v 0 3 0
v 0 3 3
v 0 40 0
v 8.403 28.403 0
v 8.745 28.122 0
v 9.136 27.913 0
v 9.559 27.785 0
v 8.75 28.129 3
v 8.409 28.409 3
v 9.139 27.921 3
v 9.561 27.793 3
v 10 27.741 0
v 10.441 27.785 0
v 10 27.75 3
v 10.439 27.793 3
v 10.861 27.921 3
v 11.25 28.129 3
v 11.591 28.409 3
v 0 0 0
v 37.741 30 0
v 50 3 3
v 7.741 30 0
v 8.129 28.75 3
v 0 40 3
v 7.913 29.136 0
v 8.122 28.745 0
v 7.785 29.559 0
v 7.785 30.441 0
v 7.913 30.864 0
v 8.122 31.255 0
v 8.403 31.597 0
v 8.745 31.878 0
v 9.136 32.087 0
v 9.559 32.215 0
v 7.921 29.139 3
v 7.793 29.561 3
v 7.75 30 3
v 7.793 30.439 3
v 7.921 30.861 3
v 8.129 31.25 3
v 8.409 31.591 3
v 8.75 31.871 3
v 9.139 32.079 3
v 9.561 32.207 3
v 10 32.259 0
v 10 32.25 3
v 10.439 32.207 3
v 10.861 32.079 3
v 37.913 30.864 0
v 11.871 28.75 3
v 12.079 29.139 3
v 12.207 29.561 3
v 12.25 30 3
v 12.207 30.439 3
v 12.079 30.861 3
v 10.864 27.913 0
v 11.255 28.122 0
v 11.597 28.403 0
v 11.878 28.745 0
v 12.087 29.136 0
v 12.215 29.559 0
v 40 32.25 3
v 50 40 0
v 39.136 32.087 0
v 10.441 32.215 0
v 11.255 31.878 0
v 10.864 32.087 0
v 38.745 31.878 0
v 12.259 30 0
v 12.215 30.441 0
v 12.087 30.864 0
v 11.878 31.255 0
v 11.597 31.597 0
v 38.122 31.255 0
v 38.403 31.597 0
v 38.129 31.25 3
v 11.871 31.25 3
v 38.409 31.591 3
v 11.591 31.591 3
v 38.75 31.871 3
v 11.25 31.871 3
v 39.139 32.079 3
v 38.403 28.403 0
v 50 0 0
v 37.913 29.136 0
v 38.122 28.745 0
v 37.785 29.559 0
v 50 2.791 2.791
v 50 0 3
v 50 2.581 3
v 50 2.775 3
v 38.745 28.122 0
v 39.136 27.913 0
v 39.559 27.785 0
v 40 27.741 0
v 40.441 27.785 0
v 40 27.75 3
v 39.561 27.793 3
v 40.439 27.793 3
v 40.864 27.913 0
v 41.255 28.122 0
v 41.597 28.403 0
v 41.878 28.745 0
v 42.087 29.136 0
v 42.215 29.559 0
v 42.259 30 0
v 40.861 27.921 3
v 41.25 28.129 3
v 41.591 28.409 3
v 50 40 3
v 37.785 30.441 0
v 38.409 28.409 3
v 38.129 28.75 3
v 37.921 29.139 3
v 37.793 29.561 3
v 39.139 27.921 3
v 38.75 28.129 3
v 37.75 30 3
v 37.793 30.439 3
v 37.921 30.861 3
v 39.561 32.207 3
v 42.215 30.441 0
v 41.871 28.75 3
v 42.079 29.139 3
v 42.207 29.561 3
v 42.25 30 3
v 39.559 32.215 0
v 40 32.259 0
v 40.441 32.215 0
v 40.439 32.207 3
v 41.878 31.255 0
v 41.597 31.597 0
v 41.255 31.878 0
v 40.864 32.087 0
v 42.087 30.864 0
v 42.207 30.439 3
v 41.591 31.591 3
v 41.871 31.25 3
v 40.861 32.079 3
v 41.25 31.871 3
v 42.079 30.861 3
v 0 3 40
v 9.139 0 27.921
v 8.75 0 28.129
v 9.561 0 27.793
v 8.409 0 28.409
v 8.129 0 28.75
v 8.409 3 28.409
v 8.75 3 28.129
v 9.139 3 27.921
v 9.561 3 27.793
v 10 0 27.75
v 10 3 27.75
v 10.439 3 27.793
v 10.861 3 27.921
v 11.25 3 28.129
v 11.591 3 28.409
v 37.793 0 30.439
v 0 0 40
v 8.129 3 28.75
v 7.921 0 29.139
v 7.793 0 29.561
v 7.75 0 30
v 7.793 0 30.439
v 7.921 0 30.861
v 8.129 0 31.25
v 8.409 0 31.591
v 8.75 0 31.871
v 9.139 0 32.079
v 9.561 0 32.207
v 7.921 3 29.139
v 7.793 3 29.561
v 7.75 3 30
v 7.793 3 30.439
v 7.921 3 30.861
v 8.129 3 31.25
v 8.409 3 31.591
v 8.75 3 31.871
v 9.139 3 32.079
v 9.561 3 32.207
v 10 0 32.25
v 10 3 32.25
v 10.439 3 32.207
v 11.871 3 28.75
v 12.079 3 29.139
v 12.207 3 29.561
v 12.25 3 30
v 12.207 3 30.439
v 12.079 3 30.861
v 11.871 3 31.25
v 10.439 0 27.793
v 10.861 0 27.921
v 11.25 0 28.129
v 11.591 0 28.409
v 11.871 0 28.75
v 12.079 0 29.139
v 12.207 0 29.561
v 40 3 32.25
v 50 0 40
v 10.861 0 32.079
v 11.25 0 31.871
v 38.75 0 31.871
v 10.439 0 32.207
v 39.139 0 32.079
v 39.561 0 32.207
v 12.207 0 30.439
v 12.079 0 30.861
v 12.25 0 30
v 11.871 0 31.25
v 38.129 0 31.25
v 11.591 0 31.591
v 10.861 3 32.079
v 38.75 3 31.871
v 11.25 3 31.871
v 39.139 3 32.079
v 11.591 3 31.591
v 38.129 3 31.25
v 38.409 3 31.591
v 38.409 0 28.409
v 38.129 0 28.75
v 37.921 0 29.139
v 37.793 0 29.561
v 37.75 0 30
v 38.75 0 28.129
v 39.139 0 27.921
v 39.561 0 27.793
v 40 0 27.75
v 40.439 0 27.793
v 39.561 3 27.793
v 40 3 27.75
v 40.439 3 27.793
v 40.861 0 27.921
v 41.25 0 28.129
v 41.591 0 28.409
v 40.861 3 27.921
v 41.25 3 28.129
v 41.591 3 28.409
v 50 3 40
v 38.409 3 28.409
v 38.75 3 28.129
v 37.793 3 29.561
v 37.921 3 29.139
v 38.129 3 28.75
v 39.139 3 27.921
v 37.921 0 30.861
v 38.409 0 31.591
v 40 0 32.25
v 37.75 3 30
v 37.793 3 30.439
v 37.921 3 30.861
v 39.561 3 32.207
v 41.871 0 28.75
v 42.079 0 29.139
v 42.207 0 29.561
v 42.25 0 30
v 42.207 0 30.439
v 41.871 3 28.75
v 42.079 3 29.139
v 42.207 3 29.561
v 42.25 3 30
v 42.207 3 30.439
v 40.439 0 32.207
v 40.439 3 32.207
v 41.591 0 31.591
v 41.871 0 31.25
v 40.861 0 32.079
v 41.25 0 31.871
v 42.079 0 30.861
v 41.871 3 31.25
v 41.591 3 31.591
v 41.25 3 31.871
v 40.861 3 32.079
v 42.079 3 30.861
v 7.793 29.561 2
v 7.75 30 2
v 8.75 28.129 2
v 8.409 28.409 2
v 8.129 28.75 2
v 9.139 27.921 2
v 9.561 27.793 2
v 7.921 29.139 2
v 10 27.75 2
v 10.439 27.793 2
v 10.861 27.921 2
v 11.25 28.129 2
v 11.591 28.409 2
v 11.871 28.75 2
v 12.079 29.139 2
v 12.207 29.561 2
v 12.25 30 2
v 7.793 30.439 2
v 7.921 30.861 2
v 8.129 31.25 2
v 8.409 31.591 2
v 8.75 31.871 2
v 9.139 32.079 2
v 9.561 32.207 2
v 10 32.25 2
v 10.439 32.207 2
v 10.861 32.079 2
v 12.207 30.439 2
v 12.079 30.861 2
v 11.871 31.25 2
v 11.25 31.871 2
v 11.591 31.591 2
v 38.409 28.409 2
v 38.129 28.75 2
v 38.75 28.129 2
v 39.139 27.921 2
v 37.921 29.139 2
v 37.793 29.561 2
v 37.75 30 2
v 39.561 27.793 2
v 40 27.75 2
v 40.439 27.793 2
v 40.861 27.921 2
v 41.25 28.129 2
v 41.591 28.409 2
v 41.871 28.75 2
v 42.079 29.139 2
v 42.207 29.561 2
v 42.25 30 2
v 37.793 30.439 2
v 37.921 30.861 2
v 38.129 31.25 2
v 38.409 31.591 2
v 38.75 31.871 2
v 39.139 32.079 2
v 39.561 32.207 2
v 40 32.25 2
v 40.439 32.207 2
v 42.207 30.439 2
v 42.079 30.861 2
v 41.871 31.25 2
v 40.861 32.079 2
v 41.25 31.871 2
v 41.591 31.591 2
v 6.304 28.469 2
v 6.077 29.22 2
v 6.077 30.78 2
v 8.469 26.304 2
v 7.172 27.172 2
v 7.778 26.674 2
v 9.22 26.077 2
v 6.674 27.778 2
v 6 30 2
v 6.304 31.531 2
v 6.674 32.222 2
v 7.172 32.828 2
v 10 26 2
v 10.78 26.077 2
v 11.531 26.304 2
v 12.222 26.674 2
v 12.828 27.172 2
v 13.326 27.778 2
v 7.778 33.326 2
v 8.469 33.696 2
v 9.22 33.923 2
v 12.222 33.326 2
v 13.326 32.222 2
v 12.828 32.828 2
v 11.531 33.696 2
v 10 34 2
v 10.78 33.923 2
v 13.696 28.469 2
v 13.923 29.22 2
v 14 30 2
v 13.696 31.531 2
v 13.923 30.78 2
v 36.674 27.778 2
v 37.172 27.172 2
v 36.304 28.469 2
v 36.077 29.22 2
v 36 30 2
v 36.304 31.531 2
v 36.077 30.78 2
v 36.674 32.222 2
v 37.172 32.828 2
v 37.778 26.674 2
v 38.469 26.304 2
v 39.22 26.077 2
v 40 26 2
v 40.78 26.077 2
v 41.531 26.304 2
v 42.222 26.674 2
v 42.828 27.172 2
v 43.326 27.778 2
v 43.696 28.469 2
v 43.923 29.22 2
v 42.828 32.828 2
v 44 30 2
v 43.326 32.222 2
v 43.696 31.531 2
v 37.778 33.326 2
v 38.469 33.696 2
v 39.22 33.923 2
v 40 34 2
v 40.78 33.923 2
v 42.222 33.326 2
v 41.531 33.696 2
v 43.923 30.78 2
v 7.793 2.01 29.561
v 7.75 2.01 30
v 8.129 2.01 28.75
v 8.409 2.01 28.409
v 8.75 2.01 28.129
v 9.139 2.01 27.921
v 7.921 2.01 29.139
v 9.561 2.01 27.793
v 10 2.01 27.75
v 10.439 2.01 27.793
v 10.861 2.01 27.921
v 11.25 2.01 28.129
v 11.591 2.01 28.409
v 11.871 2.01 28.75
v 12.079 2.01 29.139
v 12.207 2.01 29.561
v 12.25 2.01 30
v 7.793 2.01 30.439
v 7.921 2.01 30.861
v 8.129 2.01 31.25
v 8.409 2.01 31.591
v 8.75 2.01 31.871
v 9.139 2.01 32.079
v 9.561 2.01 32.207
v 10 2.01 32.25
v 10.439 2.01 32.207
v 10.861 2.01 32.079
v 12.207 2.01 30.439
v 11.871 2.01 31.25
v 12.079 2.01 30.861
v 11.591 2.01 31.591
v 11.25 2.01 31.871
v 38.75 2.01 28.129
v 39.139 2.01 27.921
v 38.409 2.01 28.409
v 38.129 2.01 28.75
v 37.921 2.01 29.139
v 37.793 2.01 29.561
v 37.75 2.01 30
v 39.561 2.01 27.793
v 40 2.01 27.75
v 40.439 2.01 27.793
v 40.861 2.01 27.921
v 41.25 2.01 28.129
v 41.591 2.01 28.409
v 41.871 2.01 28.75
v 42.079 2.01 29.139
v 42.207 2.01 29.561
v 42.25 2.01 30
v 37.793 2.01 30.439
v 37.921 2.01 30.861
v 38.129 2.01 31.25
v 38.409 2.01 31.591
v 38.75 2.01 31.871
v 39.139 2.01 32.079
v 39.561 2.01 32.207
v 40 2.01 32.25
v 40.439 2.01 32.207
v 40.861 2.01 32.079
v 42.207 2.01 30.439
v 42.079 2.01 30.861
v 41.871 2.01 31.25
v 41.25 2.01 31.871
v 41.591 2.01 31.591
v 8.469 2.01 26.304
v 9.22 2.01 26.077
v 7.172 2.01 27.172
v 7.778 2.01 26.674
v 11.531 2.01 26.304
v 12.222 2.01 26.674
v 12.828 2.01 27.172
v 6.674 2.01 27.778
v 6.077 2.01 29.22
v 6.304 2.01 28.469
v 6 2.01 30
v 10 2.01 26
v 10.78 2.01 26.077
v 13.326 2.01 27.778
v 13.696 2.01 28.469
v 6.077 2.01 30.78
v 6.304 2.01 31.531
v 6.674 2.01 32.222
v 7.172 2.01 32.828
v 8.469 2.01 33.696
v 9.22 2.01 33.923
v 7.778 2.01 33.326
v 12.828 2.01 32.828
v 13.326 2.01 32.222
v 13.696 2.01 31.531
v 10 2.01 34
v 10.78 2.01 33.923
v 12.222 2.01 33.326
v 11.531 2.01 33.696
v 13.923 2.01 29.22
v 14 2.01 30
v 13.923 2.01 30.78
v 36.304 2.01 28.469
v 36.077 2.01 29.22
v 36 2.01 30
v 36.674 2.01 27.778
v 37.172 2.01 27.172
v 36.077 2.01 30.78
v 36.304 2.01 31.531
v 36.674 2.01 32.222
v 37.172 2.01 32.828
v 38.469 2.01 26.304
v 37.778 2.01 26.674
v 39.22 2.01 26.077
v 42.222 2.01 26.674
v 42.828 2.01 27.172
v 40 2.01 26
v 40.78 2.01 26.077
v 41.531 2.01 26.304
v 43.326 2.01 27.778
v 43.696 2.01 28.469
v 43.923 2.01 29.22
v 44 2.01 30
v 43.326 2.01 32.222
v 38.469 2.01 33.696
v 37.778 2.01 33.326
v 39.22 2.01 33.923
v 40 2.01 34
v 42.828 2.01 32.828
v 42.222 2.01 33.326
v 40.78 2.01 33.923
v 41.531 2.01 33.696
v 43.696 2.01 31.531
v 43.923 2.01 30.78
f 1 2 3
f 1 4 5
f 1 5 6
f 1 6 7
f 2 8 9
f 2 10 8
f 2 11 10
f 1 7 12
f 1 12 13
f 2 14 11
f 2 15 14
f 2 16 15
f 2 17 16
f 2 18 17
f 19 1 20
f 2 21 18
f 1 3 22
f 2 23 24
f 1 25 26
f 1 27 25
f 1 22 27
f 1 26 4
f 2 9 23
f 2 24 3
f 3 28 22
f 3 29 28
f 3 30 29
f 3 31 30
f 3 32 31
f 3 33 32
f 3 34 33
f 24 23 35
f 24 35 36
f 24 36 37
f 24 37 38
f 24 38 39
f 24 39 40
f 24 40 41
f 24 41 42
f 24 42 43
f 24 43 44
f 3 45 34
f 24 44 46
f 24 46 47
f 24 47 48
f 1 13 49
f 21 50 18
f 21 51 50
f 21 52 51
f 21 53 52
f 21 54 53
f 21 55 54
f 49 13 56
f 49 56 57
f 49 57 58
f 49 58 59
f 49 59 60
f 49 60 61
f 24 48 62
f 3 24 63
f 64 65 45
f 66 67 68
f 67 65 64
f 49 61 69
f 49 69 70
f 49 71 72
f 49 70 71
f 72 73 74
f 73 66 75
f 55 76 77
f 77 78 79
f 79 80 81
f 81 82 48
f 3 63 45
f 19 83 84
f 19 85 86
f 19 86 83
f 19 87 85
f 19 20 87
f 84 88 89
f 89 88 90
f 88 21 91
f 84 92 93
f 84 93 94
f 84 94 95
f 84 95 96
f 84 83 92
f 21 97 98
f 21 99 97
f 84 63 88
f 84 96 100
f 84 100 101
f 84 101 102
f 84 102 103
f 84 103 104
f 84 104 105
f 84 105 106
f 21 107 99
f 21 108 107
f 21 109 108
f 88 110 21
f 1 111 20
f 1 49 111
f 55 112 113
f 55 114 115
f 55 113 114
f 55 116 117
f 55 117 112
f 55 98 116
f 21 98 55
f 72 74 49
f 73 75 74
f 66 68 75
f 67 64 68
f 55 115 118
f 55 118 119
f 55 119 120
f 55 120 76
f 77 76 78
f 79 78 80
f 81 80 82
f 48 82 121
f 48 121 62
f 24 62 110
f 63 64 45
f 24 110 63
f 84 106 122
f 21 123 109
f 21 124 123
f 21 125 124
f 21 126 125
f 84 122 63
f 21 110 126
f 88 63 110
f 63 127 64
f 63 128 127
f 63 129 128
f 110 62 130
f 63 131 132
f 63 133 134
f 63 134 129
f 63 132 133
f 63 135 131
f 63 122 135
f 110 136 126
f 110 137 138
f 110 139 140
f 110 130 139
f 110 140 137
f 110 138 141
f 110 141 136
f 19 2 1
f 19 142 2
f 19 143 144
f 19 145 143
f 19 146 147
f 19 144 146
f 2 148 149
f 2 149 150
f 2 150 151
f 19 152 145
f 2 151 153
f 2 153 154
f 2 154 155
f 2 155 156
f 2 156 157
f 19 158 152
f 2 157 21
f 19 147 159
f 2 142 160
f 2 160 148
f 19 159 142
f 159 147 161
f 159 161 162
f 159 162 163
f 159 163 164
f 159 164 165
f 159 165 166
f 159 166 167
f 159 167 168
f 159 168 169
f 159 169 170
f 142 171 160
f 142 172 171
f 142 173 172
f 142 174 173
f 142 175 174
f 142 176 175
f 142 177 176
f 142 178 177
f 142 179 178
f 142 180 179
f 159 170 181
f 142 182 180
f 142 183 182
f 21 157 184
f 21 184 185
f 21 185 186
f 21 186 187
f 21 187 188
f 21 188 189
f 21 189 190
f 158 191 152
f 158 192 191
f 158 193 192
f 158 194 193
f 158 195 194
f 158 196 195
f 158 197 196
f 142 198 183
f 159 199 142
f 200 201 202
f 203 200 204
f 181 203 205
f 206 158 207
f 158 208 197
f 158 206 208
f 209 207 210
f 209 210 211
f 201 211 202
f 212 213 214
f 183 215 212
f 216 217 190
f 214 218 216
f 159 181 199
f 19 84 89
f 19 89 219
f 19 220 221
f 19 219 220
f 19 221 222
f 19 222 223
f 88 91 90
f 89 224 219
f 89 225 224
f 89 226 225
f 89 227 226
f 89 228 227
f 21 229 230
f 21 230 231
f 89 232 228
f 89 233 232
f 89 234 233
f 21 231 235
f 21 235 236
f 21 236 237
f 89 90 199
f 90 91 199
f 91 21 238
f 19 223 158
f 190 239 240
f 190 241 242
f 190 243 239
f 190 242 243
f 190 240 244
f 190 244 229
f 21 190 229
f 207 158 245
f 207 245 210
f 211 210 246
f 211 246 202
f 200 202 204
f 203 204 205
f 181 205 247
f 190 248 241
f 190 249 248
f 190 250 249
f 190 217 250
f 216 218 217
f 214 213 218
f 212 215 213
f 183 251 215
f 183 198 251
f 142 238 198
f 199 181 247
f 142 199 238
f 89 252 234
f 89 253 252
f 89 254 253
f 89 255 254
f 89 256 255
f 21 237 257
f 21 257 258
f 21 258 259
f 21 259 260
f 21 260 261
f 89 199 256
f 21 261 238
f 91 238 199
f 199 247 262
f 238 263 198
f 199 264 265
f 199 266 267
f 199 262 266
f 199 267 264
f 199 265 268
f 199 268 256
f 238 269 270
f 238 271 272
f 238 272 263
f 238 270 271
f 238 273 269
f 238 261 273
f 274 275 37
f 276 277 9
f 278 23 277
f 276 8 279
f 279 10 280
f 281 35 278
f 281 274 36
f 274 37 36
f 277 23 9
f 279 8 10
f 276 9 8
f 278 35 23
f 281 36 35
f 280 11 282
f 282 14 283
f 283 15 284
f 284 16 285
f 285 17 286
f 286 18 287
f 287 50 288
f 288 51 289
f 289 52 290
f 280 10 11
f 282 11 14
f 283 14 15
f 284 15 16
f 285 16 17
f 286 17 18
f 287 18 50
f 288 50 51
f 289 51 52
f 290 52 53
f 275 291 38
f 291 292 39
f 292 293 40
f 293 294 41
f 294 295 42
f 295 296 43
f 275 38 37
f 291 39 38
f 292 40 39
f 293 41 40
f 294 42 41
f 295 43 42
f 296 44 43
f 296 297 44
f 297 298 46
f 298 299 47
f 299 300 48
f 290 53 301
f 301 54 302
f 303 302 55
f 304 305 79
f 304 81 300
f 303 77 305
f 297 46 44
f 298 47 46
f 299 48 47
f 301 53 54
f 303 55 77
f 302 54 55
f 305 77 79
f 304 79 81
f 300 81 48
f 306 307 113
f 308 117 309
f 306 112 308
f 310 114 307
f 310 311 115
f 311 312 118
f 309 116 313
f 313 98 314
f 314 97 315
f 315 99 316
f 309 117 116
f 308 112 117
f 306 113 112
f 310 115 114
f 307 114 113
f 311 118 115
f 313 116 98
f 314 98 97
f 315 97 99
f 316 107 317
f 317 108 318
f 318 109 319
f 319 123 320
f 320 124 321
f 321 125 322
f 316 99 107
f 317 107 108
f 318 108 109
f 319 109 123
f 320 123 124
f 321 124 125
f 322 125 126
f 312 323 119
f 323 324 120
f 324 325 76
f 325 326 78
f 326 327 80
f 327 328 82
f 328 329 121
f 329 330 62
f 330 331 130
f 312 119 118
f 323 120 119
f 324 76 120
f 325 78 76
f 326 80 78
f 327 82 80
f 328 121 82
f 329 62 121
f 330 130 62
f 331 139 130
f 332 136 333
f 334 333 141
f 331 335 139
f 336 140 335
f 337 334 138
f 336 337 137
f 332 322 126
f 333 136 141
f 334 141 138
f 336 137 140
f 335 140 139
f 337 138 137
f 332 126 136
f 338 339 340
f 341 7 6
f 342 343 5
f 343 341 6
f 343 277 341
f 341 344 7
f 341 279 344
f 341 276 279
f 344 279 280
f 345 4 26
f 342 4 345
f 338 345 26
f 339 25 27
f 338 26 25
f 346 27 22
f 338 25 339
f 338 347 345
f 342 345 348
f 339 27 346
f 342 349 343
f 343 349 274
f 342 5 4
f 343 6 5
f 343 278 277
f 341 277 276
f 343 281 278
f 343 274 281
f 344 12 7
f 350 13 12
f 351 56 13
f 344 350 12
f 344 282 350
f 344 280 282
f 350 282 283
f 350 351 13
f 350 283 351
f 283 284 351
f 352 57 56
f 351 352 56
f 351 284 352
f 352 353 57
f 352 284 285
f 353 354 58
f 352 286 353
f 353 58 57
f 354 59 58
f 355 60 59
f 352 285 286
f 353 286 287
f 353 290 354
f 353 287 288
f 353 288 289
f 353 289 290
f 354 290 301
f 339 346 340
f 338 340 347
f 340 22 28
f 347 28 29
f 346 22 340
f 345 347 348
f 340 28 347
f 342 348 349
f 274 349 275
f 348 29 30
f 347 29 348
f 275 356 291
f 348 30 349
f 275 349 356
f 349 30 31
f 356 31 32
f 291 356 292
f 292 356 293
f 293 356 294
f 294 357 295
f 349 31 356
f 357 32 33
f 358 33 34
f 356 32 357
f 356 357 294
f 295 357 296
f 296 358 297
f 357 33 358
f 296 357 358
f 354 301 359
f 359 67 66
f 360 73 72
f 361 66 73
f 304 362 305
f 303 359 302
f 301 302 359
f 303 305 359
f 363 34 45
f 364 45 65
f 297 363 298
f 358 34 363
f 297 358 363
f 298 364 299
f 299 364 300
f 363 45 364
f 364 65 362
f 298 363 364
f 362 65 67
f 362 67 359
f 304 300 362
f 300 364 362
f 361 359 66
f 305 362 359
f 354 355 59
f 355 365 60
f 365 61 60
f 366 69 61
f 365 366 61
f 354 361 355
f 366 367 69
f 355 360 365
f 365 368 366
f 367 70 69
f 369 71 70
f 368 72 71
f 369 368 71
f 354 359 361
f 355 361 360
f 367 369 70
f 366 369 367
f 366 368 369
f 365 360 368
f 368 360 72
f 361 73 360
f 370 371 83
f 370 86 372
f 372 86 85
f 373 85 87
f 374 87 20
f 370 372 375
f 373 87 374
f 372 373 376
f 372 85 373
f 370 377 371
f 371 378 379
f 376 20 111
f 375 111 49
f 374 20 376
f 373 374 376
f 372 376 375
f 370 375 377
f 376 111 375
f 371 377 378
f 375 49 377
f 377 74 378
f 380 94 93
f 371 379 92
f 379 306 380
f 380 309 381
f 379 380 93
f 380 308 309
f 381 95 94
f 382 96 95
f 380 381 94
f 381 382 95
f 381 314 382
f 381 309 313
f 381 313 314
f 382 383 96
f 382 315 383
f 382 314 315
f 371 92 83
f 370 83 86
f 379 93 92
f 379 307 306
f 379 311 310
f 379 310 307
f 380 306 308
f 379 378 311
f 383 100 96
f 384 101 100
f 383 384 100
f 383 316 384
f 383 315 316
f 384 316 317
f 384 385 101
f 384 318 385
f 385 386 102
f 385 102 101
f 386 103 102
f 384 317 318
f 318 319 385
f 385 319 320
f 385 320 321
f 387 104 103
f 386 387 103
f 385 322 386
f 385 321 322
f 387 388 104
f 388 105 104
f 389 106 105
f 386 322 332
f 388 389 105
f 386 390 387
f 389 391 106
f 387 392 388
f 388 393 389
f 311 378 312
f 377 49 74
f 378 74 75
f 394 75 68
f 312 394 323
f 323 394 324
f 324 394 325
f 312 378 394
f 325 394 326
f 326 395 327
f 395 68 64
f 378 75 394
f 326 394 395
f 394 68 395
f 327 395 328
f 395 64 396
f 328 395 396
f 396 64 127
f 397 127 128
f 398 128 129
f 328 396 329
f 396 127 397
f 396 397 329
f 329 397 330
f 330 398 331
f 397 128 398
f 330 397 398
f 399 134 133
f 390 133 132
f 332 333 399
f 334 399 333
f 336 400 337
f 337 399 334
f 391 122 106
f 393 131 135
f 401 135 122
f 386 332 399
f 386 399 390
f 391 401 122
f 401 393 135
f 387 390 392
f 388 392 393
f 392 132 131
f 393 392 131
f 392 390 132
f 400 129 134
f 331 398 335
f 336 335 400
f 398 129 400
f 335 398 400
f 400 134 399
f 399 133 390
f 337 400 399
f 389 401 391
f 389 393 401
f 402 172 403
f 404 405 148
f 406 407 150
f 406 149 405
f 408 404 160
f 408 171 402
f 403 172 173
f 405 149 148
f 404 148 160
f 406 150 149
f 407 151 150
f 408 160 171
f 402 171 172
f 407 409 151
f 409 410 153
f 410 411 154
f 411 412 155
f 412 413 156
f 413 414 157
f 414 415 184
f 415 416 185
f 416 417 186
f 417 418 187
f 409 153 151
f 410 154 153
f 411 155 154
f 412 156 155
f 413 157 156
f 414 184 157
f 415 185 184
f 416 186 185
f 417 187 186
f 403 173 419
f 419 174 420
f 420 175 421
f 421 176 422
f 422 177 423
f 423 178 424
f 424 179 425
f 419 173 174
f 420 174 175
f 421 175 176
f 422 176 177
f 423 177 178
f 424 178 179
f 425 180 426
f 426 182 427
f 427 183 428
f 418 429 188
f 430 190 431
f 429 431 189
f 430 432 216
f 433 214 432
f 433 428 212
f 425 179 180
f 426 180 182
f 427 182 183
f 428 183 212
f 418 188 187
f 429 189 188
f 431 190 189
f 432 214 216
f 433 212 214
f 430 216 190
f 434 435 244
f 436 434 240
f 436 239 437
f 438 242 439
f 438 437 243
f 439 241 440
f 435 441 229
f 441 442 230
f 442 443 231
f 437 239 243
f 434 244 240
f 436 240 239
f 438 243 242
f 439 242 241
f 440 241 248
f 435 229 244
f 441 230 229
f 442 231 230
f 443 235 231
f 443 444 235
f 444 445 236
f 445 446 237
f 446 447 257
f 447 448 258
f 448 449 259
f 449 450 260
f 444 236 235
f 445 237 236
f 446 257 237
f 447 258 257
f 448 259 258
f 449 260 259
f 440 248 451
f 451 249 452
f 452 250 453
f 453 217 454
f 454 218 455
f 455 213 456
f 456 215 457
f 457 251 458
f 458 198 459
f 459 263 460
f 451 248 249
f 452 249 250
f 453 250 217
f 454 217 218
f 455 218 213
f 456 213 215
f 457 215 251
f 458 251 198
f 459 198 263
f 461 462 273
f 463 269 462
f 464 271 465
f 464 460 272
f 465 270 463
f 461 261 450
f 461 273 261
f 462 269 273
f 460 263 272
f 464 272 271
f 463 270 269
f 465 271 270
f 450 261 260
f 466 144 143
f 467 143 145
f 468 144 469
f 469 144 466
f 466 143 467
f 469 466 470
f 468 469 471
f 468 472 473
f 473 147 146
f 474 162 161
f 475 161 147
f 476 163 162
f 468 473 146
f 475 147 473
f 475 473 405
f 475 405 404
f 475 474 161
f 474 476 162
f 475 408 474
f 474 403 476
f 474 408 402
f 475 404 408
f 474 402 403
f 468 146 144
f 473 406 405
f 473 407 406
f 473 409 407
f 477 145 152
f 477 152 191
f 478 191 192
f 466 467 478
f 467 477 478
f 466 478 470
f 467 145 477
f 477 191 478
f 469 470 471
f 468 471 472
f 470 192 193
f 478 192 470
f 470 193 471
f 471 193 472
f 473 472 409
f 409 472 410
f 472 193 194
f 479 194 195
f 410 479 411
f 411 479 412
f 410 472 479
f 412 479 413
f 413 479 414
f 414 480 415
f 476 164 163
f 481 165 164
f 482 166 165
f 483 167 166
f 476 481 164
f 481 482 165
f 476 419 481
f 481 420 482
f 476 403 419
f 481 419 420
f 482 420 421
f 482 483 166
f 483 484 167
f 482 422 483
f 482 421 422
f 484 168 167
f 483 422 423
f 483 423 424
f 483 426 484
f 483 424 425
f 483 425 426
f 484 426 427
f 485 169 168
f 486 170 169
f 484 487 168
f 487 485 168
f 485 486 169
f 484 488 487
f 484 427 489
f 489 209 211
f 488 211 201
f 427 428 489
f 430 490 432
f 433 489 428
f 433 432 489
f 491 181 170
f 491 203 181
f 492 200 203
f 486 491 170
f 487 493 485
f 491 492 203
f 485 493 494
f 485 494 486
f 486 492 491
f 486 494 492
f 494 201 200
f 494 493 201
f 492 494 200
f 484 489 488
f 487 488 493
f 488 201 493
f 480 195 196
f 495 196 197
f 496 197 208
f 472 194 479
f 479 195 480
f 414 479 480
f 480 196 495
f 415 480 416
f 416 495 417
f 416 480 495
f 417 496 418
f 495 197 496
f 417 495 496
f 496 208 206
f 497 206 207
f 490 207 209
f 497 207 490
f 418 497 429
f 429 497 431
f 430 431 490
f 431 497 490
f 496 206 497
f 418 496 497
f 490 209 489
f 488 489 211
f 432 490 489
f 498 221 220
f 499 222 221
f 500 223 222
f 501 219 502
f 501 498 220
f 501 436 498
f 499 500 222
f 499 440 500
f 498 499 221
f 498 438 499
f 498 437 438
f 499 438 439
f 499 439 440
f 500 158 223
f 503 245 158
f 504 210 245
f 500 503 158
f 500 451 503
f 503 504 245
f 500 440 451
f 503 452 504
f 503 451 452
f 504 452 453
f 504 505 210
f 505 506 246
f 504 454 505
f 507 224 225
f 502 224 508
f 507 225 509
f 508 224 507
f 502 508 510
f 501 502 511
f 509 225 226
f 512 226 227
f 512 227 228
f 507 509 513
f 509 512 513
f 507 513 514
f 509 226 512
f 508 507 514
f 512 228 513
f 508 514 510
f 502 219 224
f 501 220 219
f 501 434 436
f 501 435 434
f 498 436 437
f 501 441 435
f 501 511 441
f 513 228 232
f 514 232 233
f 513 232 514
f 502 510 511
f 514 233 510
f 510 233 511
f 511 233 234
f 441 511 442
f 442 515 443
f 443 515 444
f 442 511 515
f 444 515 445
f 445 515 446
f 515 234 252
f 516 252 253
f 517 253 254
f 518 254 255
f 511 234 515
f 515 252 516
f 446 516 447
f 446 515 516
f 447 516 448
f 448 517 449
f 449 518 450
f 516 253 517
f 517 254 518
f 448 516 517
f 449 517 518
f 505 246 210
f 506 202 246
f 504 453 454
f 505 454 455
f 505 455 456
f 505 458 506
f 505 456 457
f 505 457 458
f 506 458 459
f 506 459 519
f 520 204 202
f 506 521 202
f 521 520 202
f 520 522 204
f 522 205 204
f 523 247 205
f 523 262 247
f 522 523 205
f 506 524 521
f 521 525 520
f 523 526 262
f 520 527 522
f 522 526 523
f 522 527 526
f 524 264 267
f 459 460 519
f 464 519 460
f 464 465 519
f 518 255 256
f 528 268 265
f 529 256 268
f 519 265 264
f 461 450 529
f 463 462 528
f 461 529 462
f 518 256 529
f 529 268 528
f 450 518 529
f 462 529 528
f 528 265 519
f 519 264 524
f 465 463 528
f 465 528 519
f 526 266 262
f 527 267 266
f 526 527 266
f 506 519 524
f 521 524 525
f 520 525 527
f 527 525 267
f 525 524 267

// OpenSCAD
// パラメータ設定
width = 50;       // フランジの幅
depth = 40;       // 水平面の奥行き
height = 40;      // 垂直面の高さ
thickness = 3;    // 板厚

// M4皿穴のパラメータ
hole_d = 4.5;     // 貫通穴の直径
csk_d = 8.0;      // 皿座面の直径
csk_depth = 2.0;  // 皿座面の深さ
edge_margin = 10; // 縁からの距離

// 穴の位置計算
// 幅方向の中心から左右に配置
hole_x1 = edge_margin;
hole_x2 = width - edge_margin;

// 水平面の穴のY位置（原点から縁に向かって）
hole_y = depth - edge_margin;

// 垂直面の穴のZ位置（原点から上に向かって）
hole_z = height - edge_margin;

module l_bracket() {
    difference() {
        // L字のベース形状 (内側コーナーが原点)
        union() {
            // 水平面 (+Y方向へ奥行き分)
            cube([width, depth, thickness]);
            // 垂直面 (+Z方向へ高さ分)
            cube([width, thickness, height]);
        }

        // --- 水平面の皿穴 (2個) ---
        // 皿座面を下面(-Z方向)から加工するため、配置して反転・平行移動
        // 貫通穴はZ軸方向に長く抜く
        translate([0, 0, 0]) {
            // 左側の穴
            translate([hole_x1, hole_y, 0])
                horizontal_countersunk_hole();
            // 右側の穴
            translate([hole_x2, hole_y, 0])
                horizontal_countersunk_hole();
        }

        // --- 垂直面の皿穴 (2個) ---
        // 皿座面を前面(-Y方向)から加工
        translate([0, 0, 0]) {
            // 左側の穴
            translate([hole_x1, 0, hole_z])
                vertical_countersunk_hole();
            // 右側の穴
            translate([hole_x2, 0, hole_z])
                vertical_countersunk_hole();
        }
    }
}

// 水平面用皿穴（下面からボルトを入れるため、-Z方向に向かって皿座面を作る）
module horizontal_countersunk_hole() {
    // 貫通穴 (板厚を貫通)
    cylinder(d = hole_d, h = thickness + 1, $fn = 32);
    // 皿座面 (下面 = z=0 から内側へ向けて掘る)
    translate([0, 0, -0.01])
        cylinder(d = hole_d, d2 = csk_d, h = csk_depth + 0.01, $fn = 32);
}

// 垂直面用皿穴（前面からボルトを入れるため、-Y方向に向かって皿座面を作る）
module vertical_countersunk_hole() {
    // 貫通穴 (板厚を貫通 -Y方向)
    rotate([-90, 0, 0])
        cylinder(d = hole_d, h = thickness + 1, $fn = 32);
    // 皿座面 (前面 = y=0 から内側へ向けて掘る)
    rotate([-90, 0, 0])
        cylinder(d = hole_d, d2 = csk_d, h = csk_depth + 0.01, $fn = 32);
}

// 実行
l_bracket();
